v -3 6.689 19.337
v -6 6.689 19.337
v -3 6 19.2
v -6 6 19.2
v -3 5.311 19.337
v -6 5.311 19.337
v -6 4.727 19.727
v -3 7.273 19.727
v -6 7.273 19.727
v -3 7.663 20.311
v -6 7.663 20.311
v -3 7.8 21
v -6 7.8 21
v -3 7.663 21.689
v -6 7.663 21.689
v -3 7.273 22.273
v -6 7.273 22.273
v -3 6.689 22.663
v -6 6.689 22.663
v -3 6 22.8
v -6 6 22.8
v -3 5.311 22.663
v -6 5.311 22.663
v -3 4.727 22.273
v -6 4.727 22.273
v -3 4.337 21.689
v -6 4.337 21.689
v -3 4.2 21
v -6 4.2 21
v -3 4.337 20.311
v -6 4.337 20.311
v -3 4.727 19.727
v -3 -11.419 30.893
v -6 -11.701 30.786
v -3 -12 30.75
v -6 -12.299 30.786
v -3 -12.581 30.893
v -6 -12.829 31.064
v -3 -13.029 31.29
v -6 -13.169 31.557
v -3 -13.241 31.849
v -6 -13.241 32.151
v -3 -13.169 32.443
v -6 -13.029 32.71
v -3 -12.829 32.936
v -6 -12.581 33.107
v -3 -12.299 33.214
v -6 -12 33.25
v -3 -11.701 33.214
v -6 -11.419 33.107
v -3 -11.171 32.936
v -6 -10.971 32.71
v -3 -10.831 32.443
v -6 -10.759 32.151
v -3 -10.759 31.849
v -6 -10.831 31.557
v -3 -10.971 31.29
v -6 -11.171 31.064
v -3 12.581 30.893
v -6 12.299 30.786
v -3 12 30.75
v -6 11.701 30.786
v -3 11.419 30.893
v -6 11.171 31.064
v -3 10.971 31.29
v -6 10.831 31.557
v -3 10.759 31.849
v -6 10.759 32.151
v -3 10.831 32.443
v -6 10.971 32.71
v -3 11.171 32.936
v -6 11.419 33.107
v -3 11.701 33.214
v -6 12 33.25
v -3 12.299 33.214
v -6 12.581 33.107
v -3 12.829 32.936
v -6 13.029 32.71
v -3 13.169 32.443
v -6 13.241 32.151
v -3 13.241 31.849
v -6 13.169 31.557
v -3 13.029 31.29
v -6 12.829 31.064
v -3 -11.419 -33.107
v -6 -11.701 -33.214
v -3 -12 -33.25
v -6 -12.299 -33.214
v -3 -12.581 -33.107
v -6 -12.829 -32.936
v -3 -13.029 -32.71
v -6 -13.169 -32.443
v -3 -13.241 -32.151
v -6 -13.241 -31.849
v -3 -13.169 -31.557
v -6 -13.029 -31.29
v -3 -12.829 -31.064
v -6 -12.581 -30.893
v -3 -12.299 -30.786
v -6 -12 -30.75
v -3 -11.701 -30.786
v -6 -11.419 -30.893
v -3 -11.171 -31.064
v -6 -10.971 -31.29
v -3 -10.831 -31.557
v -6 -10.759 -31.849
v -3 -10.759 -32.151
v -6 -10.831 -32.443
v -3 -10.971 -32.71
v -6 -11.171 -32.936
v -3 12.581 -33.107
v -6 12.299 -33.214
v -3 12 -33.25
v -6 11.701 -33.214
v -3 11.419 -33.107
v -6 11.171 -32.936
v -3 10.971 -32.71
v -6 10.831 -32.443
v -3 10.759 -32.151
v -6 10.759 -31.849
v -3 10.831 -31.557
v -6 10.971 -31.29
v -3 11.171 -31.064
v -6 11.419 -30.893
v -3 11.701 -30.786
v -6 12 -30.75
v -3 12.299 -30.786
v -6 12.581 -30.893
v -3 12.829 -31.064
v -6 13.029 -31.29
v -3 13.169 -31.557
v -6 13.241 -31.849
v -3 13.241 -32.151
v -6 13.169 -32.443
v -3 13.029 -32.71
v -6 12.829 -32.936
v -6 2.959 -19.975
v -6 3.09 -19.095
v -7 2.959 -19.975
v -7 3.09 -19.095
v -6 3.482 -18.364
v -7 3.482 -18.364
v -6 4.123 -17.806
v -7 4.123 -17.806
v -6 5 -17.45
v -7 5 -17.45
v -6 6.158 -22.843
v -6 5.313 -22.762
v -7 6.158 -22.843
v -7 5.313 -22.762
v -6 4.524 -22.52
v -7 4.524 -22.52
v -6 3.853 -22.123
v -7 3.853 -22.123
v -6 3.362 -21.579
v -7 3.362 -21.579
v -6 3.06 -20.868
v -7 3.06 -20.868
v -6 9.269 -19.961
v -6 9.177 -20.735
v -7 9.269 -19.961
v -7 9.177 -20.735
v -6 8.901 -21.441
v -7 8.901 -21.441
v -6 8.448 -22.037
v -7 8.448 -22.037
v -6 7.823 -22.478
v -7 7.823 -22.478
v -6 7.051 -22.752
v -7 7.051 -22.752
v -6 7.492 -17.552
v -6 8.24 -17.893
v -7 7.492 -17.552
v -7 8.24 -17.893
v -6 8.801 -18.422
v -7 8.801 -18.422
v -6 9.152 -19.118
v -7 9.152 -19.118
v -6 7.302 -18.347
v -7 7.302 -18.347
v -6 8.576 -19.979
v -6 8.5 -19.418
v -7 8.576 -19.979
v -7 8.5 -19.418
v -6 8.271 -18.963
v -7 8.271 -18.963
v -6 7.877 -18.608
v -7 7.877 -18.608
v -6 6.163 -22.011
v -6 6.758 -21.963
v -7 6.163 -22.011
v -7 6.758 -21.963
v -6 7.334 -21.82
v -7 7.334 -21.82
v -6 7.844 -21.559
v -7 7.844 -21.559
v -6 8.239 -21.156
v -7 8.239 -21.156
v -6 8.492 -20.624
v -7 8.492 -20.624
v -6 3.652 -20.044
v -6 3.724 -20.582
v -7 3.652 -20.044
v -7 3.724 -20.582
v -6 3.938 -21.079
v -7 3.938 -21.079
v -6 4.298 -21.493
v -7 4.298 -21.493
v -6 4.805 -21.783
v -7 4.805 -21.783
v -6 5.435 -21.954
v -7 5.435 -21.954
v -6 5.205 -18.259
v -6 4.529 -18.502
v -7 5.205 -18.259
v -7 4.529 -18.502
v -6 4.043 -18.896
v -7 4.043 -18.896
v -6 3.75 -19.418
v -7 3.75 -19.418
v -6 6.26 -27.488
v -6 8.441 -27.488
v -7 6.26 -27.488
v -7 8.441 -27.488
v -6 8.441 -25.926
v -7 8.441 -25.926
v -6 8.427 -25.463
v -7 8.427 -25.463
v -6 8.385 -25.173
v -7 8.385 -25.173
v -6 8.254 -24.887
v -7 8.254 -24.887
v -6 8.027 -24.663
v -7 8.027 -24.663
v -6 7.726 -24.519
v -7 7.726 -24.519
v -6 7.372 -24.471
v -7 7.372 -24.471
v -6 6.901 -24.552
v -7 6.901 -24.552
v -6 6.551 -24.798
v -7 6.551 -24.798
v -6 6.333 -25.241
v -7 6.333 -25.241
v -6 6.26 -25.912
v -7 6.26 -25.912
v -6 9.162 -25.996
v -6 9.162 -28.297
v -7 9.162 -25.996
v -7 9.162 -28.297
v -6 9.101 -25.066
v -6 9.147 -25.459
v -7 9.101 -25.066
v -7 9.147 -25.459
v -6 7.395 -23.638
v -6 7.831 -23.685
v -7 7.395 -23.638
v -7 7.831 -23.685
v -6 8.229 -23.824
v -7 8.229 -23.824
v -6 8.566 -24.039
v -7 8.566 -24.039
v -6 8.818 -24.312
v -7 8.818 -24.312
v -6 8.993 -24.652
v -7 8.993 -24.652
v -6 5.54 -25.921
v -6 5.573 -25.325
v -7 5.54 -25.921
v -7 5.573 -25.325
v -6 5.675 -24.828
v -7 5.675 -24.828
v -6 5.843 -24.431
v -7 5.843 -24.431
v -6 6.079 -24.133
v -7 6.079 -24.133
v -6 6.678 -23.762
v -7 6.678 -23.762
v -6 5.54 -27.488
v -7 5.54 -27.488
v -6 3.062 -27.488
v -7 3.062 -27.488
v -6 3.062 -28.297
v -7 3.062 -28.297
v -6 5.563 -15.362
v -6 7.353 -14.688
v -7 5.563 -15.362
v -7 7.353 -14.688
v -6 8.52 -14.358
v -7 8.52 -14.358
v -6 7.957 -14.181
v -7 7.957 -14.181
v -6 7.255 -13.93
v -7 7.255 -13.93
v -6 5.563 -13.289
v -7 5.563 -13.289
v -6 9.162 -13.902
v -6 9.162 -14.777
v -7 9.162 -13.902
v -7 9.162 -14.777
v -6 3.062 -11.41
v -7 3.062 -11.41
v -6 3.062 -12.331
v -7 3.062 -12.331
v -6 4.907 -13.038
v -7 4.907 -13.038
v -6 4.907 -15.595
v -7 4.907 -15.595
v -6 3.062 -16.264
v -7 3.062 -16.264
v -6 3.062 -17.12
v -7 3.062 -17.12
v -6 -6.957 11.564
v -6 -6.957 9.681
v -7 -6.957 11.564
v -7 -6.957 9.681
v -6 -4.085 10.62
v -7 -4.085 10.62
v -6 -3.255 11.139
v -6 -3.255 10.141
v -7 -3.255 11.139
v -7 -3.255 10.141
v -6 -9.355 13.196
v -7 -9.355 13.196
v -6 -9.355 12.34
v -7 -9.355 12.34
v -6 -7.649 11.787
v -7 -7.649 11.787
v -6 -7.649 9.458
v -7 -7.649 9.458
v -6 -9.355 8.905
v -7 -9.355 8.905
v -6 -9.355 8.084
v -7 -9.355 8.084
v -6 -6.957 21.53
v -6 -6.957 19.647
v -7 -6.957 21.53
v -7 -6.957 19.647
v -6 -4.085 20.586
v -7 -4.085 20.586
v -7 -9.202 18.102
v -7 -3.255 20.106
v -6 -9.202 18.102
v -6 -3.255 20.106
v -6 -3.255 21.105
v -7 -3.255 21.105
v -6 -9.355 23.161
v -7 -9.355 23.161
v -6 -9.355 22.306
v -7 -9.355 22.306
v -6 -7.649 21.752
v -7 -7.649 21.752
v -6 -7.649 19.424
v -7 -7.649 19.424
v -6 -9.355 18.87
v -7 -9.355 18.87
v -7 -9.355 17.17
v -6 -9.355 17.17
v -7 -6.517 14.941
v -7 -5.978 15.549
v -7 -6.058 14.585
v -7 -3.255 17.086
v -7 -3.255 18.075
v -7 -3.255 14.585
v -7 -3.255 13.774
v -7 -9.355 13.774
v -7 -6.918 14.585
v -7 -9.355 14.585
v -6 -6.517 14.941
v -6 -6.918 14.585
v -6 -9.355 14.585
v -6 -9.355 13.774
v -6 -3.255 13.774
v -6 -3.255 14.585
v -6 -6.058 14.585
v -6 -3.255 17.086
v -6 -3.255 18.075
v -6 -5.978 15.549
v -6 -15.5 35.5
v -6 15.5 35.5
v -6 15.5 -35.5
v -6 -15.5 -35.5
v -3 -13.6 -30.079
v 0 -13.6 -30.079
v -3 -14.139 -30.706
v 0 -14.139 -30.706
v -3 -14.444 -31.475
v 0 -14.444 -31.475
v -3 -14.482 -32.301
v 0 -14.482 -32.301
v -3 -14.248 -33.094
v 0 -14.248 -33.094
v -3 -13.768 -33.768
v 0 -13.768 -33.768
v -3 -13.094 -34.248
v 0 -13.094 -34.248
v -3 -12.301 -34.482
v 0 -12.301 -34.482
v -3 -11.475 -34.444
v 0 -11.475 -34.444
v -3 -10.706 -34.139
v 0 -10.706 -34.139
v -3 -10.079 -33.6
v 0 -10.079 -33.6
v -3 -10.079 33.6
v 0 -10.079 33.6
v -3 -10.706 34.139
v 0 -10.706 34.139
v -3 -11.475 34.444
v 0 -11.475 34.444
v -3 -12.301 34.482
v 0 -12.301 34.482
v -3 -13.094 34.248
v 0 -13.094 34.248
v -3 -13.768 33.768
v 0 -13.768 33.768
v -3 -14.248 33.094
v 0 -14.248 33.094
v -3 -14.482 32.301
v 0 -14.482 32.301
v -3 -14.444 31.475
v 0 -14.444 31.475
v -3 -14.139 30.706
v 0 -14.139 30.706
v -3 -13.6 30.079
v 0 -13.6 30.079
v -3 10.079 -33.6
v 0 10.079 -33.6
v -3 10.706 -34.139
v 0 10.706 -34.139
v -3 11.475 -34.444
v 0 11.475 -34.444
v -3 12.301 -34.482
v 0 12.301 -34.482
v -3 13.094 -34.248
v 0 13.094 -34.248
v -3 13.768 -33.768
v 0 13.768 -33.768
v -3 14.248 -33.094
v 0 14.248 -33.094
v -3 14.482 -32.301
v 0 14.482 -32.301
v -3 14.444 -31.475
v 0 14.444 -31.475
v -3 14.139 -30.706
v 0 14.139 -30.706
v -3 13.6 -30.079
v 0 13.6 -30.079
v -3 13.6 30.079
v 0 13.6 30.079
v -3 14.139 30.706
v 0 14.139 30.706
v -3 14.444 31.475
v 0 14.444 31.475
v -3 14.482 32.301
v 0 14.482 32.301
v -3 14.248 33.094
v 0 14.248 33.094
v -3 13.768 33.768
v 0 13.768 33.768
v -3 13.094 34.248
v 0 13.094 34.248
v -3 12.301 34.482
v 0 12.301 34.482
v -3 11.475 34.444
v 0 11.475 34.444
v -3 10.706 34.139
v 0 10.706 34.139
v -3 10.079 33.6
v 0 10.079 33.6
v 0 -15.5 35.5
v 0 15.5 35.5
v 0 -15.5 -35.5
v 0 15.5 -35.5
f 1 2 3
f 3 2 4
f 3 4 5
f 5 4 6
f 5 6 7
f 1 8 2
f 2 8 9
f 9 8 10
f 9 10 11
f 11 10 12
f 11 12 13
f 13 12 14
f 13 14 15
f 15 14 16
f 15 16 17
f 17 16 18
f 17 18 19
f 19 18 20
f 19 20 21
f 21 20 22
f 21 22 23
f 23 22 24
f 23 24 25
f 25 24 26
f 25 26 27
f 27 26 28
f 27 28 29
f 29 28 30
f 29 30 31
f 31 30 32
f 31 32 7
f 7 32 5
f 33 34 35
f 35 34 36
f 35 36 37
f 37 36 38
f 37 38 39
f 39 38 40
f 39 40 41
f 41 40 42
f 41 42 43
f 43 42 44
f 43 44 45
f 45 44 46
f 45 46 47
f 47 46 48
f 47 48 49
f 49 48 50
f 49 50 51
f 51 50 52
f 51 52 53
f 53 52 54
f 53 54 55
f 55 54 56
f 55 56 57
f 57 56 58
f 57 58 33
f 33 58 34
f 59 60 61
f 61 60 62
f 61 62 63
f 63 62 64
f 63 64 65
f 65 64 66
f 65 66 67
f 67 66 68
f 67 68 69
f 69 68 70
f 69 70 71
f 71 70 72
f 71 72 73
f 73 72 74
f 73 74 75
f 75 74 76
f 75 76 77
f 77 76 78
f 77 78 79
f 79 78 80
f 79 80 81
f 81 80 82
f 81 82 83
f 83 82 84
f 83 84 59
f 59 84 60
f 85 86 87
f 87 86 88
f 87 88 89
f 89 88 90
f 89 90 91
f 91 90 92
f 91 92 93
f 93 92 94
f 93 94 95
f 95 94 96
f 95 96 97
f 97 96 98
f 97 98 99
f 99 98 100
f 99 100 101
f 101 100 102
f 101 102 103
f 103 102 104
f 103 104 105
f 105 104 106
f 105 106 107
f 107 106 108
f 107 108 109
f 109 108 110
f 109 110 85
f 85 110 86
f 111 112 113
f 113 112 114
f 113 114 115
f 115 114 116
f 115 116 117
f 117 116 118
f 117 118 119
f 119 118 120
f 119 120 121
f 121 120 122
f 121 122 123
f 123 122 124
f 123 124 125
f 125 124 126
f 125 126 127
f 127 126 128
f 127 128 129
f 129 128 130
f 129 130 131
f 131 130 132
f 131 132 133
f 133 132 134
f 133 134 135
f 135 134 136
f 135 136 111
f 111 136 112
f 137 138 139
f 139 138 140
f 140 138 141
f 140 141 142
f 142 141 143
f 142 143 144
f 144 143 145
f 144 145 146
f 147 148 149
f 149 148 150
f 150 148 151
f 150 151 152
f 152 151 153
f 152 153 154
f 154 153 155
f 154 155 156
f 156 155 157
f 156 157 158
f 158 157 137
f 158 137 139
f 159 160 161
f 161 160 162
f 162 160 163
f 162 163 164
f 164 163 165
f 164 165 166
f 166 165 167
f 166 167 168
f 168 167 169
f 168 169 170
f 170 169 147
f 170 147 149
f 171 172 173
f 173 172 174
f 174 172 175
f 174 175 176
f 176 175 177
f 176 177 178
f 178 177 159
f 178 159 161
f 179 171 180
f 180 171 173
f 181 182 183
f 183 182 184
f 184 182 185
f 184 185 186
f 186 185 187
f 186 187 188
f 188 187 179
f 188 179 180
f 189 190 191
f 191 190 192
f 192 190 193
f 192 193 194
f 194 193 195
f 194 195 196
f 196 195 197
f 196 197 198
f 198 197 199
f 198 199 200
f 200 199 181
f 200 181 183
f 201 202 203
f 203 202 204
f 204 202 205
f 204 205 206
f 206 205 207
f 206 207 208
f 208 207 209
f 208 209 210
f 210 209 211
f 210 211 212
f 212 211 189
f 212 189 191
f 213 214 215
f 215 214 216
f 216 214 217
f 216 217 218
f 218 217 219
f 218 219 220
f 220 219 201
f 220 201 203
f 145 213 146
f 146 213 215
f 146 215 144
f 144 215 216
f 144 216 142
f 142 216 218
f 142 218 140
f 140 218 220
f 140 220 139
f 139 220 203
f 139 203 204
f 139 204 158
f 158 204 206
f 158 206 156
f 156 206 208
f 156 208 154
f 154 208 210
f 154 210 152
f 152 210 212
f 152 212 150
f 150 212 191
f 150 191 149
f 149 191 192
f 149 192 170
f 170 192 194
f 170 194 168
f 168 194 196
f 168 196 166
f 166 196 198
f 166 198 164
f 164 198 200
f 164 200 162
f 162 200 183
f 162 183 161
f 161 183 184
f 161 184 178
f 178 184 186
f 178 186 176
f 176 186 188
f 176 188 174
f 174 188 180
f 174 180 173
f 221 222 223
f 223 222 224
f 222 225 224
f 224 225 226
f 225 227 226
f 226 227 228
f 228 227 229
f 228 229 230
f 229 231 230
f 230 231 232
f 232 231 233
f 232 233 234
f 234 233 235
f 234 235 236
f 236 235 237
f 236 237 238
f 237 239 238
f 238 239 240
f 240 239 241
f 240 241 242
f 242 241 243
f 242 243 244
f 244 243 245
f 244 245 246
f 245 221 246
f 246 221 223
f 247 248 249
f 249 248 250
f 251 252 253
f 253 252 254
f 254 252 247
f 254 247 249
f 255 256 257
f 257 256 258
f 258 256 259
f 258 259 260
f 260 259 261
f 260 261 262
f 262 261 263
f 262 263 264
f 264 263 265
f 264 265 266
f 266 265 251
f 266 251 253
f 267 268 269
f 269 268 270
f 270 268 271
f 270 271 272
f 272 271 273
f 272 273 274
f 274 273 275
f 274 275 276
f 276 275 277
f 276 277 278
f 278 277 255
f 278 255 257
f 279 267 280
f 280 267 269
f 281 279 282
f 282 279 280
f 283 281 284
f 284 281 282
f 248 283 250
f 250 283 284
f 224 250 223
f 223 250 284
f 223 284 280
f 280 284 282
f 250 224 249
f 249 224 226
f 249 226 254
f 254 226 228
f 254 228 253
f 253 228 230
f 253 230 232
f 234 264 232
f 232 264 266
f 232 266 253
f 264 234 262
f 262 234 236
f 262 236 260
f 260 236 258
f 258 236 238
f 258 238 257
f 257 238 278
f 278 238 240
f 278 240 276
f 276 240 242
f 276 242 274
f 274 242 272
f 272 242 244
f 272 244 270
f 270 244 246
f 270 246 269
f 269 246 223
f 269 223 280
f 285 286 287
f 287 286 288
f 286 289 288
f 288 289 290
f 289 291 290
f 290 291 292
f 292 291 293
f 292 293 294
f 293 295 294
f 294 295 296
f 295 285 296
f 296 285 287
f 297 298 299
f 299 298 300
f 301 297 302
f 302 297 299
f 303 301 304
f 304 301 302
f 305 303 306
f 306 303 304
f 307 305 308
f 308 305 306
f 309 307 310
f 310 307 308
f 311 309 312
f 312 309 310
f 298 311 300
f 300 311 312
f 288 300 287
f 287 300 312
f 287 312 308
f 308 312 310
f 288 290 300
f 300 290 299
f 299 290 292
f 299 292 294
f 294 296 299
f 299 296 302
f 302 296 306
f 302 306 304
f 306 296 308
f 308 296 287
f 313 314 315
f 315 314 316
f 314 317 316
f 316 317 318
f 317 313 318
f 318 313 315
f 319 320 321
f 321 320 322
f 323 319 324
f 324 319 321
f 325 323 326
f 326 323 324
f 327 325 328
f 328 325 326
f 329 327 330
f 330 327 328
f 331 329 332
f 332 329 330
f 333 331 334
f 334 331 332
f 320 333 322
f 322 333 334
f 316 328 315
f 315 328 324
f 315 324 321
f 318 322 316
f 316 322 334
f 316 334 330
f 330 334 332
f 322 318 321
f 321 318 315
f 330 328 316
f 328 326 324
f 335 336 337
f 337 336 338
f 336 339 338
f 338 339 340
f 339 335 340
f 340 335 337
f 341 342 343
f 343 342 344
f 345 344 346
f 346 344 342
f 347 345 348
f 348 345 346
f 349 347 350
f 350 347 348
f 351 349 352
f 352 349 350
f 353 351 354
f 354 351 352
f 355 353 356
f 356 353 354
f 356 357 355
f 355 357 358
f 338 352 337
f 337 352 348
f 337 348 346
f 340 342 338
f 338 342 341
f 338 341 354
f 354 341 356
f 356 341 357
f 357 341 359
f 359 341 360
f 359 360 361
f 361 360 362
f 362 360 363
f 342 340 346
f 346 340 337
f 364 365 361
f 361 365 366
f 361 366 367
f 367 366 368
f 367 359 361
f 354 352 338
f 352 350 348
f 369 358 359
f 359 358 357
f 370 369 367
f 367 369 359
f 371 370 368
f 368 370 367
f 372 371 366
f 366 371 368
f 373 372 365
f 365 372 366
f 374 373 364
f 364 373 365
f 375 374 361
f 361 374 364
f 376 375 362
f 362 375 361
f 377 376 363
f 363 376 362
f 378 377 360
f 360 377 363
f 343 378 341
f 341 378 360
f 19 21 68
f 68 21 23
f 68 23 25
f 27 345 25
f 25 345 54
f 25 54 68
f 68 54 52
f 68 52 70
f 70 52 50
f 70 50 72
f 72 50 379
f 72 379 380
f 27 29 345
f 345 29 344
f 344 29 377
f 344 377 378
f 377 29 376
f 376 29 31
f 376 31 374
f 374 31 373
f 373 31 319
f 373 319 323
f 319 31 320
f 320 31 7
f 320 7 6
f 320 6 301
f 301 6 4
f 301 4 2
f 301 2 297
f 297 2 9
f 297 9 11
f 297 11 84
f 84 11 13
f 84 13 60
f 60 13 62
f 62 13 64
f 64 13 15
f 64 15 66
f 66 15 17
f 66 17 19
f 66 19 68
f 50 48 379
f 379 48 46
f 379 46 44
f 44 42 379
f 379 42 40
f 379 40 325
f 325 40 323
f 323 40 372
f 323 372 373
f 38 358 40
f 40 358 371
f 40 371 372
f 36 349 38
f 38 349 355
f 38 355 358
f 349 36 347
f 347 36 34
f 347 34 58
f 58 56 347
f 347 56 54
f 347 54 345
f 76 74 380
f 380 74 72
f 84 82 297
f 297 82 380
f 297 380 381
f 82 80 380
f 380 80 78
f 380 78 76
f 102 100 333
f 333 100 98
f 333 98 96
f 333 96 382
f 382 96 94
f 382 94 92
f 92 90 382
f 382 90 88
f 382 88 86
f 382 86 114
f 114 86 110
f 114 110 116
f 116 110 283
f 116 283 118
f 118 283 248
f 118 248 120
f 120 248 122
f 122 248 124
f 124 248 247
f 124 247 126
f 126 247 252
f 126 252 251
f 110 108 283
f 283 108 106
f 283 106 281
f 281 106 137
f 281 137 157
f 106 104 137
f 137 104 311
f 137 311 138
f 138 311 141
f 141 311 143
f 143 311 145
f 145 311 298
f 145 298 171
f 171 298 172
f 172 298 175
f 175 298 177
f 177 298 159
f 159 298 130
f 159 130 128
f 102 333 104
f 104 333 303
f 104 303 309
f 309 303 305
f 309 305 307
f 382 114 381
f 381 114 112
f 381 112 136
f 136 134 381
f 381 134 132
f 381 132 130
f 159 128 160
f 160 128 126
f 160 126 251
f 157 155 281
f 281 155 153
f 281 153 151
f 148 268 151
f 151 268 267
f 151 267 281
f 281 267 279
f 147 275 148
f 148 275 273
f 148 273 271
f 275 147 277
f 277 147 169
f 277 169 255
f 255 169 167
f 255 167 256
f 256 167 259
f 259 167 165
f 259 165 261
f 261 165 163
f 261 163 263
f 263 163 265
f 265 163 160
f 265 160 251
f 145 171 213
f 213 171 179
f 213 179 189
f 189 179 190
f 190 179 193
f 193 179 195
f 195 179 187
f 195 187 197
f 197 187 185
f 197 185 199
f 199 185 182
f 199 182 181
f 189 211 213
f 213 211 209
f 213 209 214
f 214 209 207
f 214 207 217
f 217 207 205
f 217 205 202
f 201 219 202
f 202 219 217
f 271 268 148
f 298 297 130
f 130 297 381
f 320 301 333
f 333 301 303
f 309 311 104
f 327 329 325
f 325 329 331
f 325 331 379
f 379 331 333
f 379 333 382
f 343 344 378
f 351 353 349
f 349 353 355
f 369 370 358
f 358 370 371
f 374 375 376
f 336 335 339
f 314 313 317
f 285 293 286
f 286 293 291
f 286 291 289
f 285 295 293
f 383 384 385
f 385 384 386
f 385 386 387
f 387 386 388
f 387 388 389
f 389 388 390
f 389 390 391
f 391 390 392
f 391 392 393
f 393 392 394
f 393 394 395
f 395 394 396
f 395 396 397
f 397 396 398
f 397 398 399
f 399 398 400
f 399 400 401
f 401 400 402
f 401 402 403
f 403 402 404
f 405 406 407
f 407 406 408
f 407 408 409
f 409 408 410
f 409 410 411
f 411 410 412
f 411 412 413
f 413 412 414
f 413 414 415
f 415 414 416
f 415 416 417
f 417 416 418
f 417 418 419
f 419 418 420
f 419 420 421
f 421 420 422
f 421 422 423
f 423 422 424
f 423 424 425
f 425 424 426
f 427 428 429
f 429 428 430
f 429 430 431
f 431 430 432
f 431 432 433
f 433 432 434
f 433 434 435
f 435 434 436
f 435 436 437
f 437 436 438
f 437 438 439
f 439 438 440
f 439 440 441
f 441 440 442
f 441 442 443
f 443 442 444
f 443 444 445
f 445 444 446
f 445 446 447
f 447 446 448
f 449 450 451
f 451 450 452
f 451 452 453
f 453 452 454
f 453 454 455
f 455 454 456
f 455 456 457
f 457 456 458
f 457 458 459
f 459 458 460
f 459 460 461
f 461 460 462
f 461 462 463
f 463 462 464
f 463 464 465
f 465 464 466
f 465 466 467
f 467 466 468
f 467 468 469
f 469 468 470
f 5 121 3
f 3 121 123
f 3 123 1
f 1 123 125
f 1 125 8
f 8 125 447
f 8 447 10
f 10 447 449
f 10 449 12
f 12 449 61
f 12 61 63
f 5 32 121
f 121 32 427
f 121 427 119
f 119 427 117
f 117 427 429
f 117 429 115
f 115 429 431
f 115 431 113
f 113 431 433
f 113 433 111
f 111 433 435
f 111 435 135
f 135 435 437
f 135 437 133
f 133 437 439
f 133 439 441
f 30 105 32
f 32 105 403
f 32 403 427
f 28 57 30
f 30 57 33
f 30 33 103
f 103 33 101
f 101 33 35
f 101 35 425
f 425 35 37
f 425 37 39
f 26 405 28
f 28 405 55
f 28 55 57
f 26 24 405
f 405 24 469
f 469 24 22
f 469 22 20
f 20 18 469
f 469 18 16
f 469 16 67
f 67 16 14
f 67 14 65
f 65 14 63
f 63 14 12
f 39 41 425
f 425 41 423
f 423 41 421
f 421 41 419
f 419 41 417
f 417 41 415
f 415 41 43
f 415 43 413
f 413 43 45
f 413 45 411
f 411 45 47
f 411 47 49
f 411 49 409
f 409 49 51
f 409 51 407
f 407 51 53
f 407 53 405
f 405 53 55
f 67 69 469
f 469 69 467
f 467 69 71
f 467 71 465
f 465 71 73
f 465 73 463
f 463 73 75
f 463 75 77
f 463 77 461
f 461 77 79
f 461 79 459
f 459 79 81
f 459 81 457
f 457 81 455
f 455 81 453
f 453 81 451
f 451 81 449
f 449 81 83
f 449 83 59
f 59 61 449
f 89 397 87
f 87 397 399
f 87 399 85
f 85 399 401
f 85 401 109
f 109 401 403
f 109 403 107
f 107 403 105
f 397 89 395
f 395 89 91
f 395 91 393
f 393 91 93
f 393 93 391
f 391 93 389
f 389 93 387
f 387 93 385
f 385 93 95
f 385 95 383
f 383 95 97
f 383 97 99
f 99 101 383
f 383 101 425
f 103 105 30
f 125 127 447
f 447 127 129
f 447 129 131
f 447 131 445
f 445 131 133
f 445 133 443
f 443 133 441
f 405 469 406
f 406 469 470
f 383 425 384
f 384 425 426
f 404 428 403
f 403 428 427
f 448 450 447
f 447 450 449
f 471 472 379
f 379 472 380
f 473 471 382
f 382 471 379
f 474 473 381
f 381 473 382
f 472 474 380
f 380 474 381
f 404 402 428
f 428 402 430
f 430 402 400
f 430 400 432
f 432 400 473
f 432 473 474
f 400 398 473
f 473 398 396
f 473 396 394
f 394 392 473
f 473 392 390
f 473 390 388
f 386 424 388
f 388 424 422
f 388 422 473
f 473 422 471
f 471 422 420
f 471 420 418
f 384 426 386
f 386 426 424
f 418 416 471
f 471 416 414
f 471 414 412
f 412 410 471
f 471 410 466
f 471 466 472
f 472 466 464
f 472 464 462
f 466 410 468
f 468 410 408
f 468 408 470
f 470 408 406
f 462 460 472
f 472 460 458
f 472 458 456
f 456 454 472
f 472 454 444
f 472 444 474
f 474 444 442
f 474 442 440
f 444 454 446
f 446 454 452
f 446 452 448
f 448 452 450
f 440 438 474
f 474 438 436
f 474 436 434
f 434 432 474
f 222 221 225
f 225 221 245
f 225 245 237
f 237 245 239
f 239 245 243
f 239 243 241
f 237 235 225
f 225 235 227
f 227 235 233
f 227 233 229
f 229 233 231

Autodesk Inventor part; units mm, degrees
ref_plane "YZ Plane" through (0, 0, 0) normal (1, 0, 0) x (0, 1, 0)
ref_plane "XZ Plane" through (0, 0, 0) normal (0, 1, 0) x (-1, 0, 0)
ref_plane "XY Plane" through (0, 0, 0) normal (0, 0, 1) x (1, 0, 0)
sketch "Esquisse1" plane through (0, 0, 0) normal (1, 0, 0) x (0, 1, 0)
  line L0 (-15.5, -35.5) -> (15.5, -35.5)
  line L1 (15.5, -35.5) -> (15.5, 35.5)
  line L2 (15.5, 35.5) -> (-15.5, 35.5)
  line L3 (-15.5, 35.5) -> (-15.5, -35.5)
  line L4 (-15.5, -35.5) -> (15.5, 35.5) construction
  line L5 (15.5, -35.5) -> (-15.5, 35.5) construction
  point P0 (0, 0)
  dimension "d0" = 31
  dimension "d1" = 71
extrude "Extrusion1" add sketch "Esquisse1" against normal blind 6
sketch "Esquisse2" plane through (0, 0, 0) normal (1, 0, 0) x (0, 0, -1)
  line L0 (33.6, -13.6) -> (-33.6, -13.6)
  line L1 (-33.6, -13.6) -> (-33.6, 13.6)
  line L2 (-33.6, 13.6) -> (33.6, 13.6)
  line L3 (33.6, 13.6) -> (33.6, -13.6)
  line L4 (33.6, -13.6) -> (-33.6, 13.6) construction
  line L5 (-33.6, -13.6) -> (33.6, 13.6) construction
  point P0 (0, 0)
  dimension "d4" = 67.2
  dimension "d5" = 27.2
extrude "Extrusion2" cut sketch "Esquisse2" against normal blind 3
sketch "Esquisse3" plane through (0, 0, 0) normal (1, 0, 0) x (0, 0, -1)
  line L0 (32, -12) -> (-32, 12) construction
  line L1 (-32, -12) -> (32, 12) construction
  arc A0 (-30.0791, 13.6) -> (-33.6, 10.0791) centre (-32, 12) ccw
  arc A1 (33.5, 10) -> (30, 13.5) centre (32, 12) ccw
  arc A2 (30.0791, -13.6) -> (33.6, -10.0791) centre (32, -12) ccw
  line L2 (-33.6, 13.6) -> (33.6, 13.6) projected
  line L3 (33.6, -13.6) -> (-33.6, 13.6) construction
  line L4 (-33.5, -13.5) -> (33.5, 13.5) construction
  arc A3 (-33.5, -10) -> (-30, -13.5) centre (-32, -12) ccw
  line L5 (-33.6, 13.6) -> (-30.0791, 13.6)
  line L6 (30, 13.5) -> (33.5, 13.5)
  line L7 (-33.5, -13.5) -> (-33.5, -10)
  line L8 (-33.6, 10.0791) -> (-33.6, 13.6)
  line L9 (33.6, -13.6) -> (30.0791, -13.6)
  line L10 (-30, -13.5) -> (-33.5, -13.5)
  line L11 (33.5, 13.5) -> (33.5, 10)
  line L12 (33.6, -10.0791) -> (33.6, -13.6)
  point P0 (0, 0)
  point P1 (33.5, 13.5)
  point P2 (30.0791, 13.6)
  point P3 (-30.0791, 13.6)
  dimension "d8" = 64
  dimension "d9" = 24
  dimension "d10" = 5
  dimension "d12" = 5
  dimension "d13" = 5
extrude "Extrusion3" cut sketch "Esquisse3" against normal blind 3
sketch "Esquisse4" plane through (-6, 0, 0) normal (-1, 0, 0) x (0, 0, 1)
  line L0 (-28.9525, 9.2685) -> (3.8656, 9.2685) construction
  line L1 (3.8656, 9.2685) -> (3.8656, -1.9036) construction
  line L2 (3.8656, -1.9036) -> (-28.9525, -1.9036) construction
  line L3 (-28.9525, -1.9036) -> (-28.9525, 9.2685) construction
  line L4 (8.1238, -3.2547) -> (23.4156, -3.2547) construction
  line L5 (23.4156, -3.2547) -> (23.4156, -10.1675) construction
  line L6 (23.4156, -10.1675) -> (8.1238, -10.1675) construction
  line L7 (8.1238, -10.1675) -> (8.1238, -3.2547) construction
  line L8 (-28.297, 3.0616) -> (-28.297, 9.1616)
  line L9 (-28.297, 9.1616) -> (-25.9955, 9.1616)
  spline S0 degree 2 poles (-25.9955, 9.1616) (-25.3865, 9.1616) (-25.0657, 9.1012) knots 0 0 0 1 1 1
  spline S1 degree 2 poles (-25.0657, 9.1012) (-24.6147, 9.0268) (-24.0102, 8.6083) (-23.6383, 7.8505) (-23.6383, 7.3948) knots 0 0 0 1 2 3 3 3
  spline S2 degree 2 poles (-23.6383, 7.3948) (-23.6383, 6.6184) (-24.6286, 5.5397) (-25.9211, 5.5397) knots 0 0 0 1 2 2 2
  line L10 (-25.9211, 5.5397) -> (-27.488, 5.5397)
  line L11 (-27.488, 5.5397) -> (-27.488, 3.0616)
  line L12 (-27.488, 3.0616) -> (-28.297, 3.0616)
  line L13 (-27.488, 6.2604) -> (-25.9118, 6.2604)
  spline S3 degree 2 poles (-25.9118, 6.2604) (-25.1261, 6.2604) (-24.4705, 6.8416) (-24.4705, 7.3716) knots 0 0 0 1 2 2 2
  spline S4 degree 2 poles (-24.4705, 7.3716) (-24.4705, 7.7528) (-24.8564, 8.3015) (-25.1726, 8.3852) knots 0 0 0 1 2 2 2
  spline S5 degree 2 poles (-25.1726, 8.3852) (-25.3772, 8.441) (-25.9258, 8.441) knots 0 0 0 1 1 1
  line L14 (-25.9258, 8.441) -> (-27.488, 8.441)
  line L15 (-27.488, 8.441) -> (-27.488, 6.2604)
  line L16 (-18.2589, 5.205) -> (-17.45, 5.0004)
  spline S6 degree 2 poles (-17.45, 5.0004) (-17.7057, 4.0054) (-19.0214, 2.9593) (-19.9746, 2.9593) knots 0 0 0 1 2 2 2
  spline S7 degree 2 poles (-19.9746, 2.9593) (-20.9602, 2.9593) (-22.197, 3.7637) (-22.8432, 5.284) (-22.8432, 6.1581) knots 0 0 0 1 2 3 3 3
  spline S8 degree 2 poles (-22.8432, 6.1581) (-22.8432, 7.1112) (-22.1133, 8.5339) (-20.7696, 9.2685) (-19.9606, 9.2685) knots 0 0 0 1 2 3 3 3
  spline S9 degree 2 poles (-19.9606, 9.2685) (-19.0447, 9.2685) (-17.7987, 8.334) (-17.5522, 7.4925) knots 0 0 0 1 2 2 2
  line L17 (-17.5522, 7.4925) -> (-18.3473, 7.3019)
  spline S10 degree 2 poles (-18.3473, 7.3019) (-18.5612, 7.9667) (-19.3655, 8.5758) (-19.9792, 8.5758) knots 0 0 0 1 2 2 2
  spline S11 degree 2 poles (-19.9792, 8.5758) (-20.6813, 8.5758) (-21.6298, 7.9016) (-22.011, 6.7672) (-22.011, 6.1628) knots 0 0 0 1 2 3 3 3
  spline S12 degree 2 poles (-22.011, 6.1628) (-22.011, 5.3863) (-21.5554, 4.224) (-20.6022, 3.6521) (-20.0443, 3.6521) knots 0 0 0 1 2 3 3 3
  spline S13 degree 2 poles (-20.0443, 3.6521) (-19.3655, 3.6521) (-18.4263, 4.4332) (-18.2589, 5.205) knots 0 0 0 1 2 2 2
  line L18 (-17.1198, 3.0616) -> (-14.7766, 9.1616)
  line L19 (-14.7766, 9.1616) -> (-13.9025, 9.1616)
  line L20 (-13.9025, 9.1616) -> (-11.4104, 3.0616)
  line L21 (-11.4104, 3.0616) -> (-12.331, 3.0616)
  line L22 (-12.331, 3.0616) -> (-13.0377, 4.9074)
  line L23 (-13.0377, 4.9074) -> (-15.5948, 4.9074)
  line L24 (-15.5948, 4.9074) -> (-16.2644, 3.0616)
  line L25 (-16.2644, 3.0616) -> (-17.1198, 3.0616)
  line L26 (-15.3624, 5.563) -> (-13.2888, 5.563)
  line L27 (-13.2888, 5.563) -> (-13.9304, 7.2554)
  spline S14 degree 2 poles (-13.9304, 7.2554) (-14.2186, 8.0272) (-14.3581, 8.52) knots 0 0 0 1 1 1
  spline S15 degree 2 poles (-14.3581, 8.52) (-14.479, 7.9342) (-14.6882, 7.353) knots 0 0 0 1 1 1
  line L28 (-14.6882, 7.353) -> (-15.3624, 5.563)
  line L29 (8.0842, -9.3547) -> (10.1406, -3.2547)
  line L30 (10.1406, -3.2547) -> (11.1392, -3.2547)
  line L31 (11.1392, -3.2547) -> (13.1956, -9.3547)
  line L32 (13.1956, -9.3547) -> (12.3404, -9.3547)
  line L33 (12.3404, -9.3547) -> (11.7867, -7.6493)
  line L34 (11.7867, -7.6493) -> (9.4585, -7.6493)
  line L35 (9.4585, -7.6493) -> (8.9048, -9.3547)
  line L36 (8.9048, -9.3547) -> (8.0842, -9.3547)
  line L37 (11.5643, -6.9573) -> (10.6201, -4.0852)
  line L38 (10.6201, -4.0852) -> (9.6809, -6.9573)
  line L39 (9.6809, -6.9573) -> (11.5643, -6.9573)
  line L40 (18.2229, -9.3547) -> (17.17, -9.3547)
  line L41 (17.17, -9.3547) -> (14.9406, -6.5173)
  line L42 (14.9406, -6.5173) -> (14.5846, -6.9177)
  line L43 (14.5846, -6.9177) -> (14.5846, -9.3547)
  line L44 (14.5846, -9.3547) -> (13.7739, -9.3547)
  line L45 (13.7739, -9.3547) -> (13.7739, -3.2547)
  line L46 (13.7739, -3.2547) -> (14.5846, -3.2547)
  line L47 (14.5846, -3.2547) -> (14.5846, -6.0576)
  line L48 (14.5846, -6.0576) -> (17.0859, -3.2547)
  line L49 (17.0859, -3.2547) -> (18.0746, -3.2547)
  line L50 (18.0746, -3.2547) -> (15.5486, -5.9785)
  line L51 (15.5486, -5.9785) -> (18.2229, -9.3547)
  line L52 (18.0499, -9.3547) -> (20.1063, -3.2547)
  line L53 (20.1063, -3.2547) -> (21.1048, -3.2547)
  line L54 (21.1048, -3.2547) -> (23.1612, -9.3547)
  line L55 (23.1612, -9.3547) -> (22.306, -9.3547)
  line L56 (22.306, -9.3547) -> (21.7524, -7.6493)
  line L57 (21.7524, -7.6493) -> (19.4241, -7.6493)
  line L58 (19.4241, -7.6493) -> (18.8705, -9.3547)
  line L59 (18.8705, -9.3547) -> (18.0499, -9.3547)
  line L60 (21.5299, -6.9573) -> (20.5858, -4.0852)
  line L61 (20.5858, -4.0852) -> (19.6466, -6.9573)
  line L62 (19.6466, -6.9573) -> (21.5299, -6.9573)
  point P0 (0, 0)
extrude "Extrusion4" add sketch "Esquisse4" along normal blind 1
sketch "Esquisse5" plane through (-6, 0, 0) normal (-1, 0, 0) x (0, 0, 1)
  arc A0 (-30.0791, 13.6) -> (-33.6, 10.0791) centre (-32, 12) ccw projected
  line L0 (32, -12) -> (-32, -12)
  line L1 (-32, -12) -> (-32, 12)
  line L2 (-32, 12) -> (32, 12)
  line L3 (32, 12) -> (32, -12)
  line L4 (32, -12) -> (-32, 12) construction
  line L5 (-32, -12) -> (32, 12) construction
  circle A1 centre (-32, 12) radius 1.25
  circle A2 centre (-32, -12) radius 1.25
  circle A3 centre (32, 12) radius 1.25
  circle A4 centre (32, -12) radius 1.25
  line L6 (35.5, 15.5) -> (-35.5, 15.5) projected
  line L7 (35.5, -15.5) -> (35.5, 15.5) projected
  point P0 (0, 0)
  dimension "d18" = 64
  dimension "d19" = 24
  dimension "d20" = 2.5
  dimension "d21" = 2.5
  dimension "d22" = 2.5
  dimension "d24" = 2.5
hole "Perçage1" at (-6, 12, 32) at (-6, -12, -32) at (-6, -12, 32) at (-6, 12, -32) direction (1, 0, 0) diameter 2.5 end through all
sketch "Esquisse6" plane through (-6, 0, 0) normal (-1, 0, 0) x (0, 0, 1)
  circle A0 centre (21, 6) radius 1.8
  line L0 (35.5, 15.5) -> (-35.5, 15.5) projected
  line L1 (35.5, -15.5) -> (35.5, 15.5) projected
  point P0 (0, 0)
  dimension "d37" = 3.6
  dimension "d38" = 9.5
  dimension "d39" = 14.5
extrude "Extrusion5" cut sketch "Esquisse6" against normal blind 10
properties part number "wb_box2026_lid1"
